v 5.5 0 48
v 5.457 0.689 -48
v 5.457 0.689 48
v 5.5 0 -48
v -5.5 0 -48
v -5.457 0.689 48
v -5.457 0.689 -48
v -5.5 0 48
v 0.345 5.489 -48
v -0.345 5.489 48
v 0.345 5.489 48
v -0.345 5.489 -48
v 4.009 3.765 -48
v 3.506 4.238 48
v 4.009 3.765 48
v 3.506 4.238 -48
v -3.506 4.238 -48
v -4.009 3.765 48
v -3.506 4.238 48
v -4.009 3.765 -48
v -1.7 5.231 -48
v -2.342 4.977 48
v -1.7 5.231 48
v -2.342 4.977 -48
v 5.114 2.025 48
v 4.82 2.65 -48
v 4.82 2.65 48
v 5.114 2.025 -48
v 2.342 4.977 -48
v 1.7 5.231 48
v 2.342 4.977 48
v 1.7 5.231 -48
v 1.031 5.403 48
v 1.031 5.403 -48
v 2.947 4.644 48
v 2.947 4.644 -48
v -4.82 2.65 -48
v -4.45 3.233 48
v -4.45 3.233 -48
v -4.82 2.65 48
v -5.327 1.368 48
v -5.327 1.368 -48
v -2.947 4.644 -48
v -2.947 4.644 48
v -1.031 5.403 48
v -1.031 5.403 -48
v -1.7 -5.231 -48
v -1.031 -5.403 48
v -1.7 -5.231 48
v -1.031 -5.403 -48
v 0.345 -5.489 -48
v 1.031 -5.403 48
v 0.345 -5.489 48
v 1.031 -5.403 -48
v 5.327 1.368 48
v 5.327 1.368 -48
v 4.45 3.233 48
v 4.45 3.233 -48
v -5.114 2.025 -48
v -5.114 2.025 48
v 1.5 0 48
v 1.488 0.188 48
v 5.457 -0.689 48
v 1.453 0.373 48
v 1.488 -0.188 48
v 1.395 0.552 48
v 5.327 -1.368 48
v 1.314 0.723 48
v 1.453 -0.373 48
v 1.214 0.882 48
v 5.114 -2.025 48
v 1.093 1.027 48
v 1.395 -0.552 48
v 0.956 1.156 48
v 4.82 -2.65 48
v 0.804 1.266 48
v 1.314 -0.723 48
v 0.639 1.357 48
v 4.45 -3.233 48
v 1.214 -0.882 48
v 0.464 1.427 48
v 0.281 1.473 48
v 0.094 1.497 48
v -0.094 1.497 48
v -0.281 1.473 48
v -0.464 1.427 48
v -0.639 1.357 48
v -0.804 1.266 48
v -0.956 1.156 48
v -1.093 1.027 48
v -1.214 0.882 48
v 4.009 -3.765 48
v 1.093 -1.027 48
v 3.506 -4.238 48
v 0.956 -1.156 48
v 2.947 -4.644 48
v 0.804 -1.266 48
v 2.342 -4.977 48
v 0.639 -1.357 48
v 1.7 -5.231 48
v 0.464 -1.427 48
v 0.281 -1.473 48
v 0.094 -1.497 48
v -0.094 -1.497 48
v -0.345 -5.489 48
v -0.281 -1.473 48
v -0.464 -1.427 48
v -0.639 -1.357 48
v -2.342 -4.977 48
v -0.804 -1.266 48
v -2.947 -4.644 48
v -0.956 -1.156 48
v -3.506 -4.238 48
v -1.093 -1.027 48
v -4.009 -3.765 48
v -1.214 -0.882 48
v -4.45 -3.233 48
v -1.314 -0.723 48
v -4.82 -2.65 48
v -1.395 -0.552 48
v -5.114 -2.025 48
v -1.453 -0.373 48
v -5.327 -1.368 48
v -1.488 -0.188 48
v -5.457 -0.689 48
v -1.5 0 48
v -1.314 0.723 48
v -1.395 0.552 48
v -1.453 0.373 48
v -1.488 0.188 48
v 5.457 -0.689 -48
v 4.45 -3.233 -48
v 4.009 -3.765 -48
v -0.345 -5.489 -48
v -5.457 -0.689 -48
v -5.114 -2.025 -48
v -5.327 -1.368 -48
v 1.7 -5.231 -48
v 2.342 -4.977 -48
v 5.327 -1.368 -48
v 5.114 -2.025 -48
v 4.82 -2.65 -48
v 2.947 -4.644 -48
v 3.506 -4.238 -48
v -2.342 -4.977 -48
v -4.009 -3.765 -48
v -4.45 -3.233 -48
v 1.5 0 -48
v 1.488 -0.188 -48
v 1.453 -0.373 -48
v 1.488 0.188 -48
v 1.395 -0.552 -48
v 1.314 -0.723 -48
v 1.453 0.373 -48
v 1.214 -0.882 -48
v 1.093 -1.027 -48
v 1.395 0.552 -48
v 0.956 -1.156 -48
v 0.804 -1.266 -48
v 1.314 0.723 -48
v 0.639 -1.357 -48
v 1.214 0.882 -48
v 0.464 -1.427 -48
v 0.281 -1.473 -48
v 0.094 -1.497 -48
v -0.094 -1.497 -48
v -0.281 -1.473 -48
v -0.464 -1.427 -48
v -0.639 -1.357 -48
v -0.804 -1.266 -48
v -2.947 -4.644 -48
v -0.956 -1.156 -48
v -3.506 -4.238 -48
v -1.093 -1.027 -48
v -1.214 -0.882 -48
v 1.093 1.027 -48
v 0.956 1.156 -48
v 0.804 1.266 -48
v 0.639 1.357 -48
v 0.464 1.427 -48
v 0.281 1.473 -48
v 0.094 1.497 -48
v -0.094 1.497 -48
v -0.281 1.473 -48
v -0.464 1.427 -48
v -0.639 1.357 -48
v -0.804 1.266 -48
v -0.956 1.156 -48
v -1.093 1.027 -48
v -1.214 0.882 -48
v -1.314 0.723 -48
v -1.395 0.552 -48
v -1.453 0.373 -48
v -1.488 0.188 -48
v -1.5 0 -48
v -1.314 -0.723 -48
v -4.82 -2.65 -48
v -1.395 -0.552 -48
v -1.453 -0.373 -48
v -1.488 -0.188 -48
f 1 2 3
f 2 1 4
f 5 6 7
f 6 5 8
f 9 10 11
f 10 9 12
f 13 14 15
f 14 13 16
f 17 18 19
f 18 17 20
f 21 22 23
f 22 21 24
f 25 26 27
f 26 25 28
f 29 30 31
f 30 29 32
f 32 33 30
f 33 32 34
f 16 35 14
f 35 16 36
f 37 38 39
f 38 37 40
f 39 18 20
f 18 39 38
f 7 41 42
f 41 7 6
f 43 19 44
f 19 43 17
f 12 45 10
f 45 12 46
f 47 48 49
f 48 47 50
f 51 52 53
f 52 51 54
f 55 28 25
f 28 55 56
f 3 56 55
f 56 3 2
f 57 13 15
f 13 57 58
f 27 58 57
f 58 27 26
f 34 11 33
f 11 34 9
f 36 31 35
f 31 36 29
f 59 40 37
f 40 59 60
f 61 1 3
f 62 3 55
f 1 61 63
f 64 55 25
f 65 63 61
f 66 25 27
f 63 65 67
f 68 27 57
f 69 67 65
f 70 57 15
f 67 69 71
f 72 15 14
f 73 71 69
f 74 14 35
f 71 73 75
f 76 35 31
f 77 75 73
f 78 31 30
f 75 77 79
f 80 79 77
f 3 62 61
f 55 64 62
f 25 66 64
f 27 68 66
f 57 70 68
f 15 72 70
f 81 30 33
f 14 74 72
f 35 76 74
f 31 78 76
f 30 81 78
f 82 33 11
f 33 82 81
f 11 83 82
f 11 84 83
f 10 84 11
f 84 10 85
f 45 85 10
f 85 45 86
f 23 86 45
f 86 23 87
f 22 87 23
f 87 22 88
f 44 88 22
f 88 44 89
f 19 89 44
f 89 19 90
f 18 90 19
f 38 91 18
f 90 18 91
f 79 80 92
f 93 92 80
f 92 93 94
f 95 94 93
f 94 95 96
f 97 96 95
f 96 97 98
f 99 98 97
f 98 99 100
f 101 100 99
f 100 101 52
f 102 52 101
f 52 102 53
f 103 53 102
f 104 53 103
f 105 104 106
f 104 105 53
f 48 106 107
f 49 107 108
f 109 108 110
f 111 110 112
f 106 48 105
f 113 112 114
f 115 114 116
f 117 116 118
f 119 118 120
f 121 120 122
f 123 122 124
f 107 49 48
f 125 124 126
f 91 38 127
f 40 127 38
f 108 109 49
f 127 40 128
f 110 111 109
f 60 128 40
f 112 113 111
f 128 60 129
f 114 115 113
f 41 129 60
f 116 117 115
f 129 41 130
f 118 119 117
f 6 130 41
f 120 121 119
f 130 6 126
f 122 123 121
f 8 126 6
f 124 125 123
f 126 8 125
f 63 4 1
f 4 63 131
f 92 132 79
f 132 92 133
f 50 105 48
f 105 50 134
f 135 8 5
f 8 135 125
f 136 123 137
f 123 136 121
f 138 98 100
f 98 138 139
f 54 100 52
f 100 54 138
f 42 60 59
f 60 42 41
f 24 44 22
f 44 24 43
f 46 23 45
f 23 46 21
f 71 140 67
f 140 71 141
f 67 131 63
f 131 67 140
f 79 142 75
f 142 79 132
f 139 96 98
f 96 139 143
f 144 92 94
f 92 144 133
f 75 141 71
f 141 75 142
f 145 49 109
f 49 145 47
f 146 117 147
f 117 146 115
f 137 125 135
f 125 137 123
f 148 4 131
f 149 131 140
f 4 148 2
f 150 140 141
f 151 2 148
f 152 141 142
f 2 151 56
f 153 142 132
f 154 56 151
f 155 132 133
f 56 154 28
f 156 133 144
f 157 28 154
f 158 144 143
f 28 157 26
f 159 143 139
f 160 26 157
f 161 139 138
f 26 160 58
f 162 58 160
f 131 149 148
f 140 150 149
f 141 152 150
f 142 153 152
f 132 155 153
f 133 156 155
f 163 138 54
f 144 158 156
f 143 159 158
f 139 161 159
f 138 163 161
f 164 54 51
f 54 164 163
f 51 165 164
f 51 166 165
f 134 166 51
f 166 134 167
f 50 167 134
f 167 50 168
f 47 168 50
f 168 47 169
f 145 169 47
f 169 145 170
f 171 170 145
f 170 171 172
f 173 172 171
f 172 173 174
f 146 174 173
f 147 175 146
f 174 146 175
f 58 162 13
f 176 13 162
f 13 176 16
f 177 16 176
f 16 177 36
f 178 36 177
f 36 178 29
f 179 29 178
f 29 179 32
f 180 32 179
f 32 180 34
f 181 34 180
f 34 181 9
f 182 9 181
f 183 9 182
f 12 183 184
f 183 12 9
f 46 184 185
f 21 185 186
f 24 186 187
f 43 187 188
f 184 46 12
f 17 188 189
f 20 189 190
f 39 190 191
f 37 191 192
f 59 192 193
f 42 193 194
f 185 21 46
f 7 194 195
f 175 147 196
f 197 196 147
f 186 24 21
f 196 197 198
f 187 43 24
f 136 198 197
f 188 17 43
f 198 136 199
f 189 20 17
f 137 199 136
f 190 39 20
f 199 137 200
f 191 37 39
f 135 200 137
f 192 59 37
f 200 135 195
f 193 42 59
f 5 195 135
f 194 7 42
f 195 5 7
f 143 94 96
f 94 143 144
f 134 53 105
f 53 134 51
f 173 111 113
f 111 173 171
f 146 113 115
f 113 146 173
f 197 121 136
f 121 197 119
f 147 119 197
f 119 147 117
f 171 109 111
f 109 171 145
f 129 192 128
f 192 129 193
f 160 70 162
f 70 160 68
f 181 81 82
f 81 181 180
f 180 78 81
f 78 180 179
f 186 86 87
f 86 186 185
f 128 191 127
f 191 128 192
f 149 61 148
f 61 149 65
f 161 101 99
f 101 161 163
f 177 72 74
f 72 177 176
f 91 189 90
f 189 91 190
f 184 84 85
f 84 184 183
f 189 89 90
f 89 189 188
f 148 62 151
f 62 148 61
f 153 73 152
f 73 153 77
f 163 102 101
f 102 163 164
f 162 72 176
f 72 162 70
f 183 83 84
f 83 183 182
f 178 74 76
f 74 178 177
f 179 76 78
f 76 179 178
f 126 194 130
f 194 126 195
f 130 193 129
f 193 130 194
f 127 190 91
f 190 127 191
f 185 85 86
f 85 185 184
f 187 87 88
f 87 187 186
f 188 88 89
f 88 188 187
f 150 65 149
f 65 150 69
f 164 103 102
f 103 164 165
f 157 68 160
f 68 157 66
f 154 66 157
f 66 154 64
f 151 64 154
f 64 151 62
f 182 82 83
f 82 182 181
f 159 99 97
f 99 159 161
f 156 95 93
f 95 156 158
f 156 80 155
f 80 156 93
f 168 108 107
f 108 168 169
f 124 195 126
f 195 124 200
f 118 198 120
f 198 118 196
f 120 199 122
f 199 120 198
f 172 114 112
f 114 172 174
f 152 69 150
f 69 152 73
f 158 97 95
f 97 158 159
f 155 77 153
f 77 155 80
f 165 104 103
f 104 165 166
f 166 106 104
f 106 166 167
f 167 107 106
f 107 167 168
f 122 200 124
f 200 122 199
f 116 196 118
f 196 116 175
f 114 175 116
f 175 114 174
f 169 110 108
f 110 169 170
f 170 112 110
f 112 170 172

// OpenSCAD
$fn = 50;


difference() {
	union() {
		translate(v = [0, 0, -48.0000000000]) {
			cylinder(h = 96, r = 5.5000000000);
		}
	}
	union() {
		translate(v = [0, 0, -100.0000000000]) {
			cylinder(h = 200, r = 1.5000000000);
		}
	}
}
